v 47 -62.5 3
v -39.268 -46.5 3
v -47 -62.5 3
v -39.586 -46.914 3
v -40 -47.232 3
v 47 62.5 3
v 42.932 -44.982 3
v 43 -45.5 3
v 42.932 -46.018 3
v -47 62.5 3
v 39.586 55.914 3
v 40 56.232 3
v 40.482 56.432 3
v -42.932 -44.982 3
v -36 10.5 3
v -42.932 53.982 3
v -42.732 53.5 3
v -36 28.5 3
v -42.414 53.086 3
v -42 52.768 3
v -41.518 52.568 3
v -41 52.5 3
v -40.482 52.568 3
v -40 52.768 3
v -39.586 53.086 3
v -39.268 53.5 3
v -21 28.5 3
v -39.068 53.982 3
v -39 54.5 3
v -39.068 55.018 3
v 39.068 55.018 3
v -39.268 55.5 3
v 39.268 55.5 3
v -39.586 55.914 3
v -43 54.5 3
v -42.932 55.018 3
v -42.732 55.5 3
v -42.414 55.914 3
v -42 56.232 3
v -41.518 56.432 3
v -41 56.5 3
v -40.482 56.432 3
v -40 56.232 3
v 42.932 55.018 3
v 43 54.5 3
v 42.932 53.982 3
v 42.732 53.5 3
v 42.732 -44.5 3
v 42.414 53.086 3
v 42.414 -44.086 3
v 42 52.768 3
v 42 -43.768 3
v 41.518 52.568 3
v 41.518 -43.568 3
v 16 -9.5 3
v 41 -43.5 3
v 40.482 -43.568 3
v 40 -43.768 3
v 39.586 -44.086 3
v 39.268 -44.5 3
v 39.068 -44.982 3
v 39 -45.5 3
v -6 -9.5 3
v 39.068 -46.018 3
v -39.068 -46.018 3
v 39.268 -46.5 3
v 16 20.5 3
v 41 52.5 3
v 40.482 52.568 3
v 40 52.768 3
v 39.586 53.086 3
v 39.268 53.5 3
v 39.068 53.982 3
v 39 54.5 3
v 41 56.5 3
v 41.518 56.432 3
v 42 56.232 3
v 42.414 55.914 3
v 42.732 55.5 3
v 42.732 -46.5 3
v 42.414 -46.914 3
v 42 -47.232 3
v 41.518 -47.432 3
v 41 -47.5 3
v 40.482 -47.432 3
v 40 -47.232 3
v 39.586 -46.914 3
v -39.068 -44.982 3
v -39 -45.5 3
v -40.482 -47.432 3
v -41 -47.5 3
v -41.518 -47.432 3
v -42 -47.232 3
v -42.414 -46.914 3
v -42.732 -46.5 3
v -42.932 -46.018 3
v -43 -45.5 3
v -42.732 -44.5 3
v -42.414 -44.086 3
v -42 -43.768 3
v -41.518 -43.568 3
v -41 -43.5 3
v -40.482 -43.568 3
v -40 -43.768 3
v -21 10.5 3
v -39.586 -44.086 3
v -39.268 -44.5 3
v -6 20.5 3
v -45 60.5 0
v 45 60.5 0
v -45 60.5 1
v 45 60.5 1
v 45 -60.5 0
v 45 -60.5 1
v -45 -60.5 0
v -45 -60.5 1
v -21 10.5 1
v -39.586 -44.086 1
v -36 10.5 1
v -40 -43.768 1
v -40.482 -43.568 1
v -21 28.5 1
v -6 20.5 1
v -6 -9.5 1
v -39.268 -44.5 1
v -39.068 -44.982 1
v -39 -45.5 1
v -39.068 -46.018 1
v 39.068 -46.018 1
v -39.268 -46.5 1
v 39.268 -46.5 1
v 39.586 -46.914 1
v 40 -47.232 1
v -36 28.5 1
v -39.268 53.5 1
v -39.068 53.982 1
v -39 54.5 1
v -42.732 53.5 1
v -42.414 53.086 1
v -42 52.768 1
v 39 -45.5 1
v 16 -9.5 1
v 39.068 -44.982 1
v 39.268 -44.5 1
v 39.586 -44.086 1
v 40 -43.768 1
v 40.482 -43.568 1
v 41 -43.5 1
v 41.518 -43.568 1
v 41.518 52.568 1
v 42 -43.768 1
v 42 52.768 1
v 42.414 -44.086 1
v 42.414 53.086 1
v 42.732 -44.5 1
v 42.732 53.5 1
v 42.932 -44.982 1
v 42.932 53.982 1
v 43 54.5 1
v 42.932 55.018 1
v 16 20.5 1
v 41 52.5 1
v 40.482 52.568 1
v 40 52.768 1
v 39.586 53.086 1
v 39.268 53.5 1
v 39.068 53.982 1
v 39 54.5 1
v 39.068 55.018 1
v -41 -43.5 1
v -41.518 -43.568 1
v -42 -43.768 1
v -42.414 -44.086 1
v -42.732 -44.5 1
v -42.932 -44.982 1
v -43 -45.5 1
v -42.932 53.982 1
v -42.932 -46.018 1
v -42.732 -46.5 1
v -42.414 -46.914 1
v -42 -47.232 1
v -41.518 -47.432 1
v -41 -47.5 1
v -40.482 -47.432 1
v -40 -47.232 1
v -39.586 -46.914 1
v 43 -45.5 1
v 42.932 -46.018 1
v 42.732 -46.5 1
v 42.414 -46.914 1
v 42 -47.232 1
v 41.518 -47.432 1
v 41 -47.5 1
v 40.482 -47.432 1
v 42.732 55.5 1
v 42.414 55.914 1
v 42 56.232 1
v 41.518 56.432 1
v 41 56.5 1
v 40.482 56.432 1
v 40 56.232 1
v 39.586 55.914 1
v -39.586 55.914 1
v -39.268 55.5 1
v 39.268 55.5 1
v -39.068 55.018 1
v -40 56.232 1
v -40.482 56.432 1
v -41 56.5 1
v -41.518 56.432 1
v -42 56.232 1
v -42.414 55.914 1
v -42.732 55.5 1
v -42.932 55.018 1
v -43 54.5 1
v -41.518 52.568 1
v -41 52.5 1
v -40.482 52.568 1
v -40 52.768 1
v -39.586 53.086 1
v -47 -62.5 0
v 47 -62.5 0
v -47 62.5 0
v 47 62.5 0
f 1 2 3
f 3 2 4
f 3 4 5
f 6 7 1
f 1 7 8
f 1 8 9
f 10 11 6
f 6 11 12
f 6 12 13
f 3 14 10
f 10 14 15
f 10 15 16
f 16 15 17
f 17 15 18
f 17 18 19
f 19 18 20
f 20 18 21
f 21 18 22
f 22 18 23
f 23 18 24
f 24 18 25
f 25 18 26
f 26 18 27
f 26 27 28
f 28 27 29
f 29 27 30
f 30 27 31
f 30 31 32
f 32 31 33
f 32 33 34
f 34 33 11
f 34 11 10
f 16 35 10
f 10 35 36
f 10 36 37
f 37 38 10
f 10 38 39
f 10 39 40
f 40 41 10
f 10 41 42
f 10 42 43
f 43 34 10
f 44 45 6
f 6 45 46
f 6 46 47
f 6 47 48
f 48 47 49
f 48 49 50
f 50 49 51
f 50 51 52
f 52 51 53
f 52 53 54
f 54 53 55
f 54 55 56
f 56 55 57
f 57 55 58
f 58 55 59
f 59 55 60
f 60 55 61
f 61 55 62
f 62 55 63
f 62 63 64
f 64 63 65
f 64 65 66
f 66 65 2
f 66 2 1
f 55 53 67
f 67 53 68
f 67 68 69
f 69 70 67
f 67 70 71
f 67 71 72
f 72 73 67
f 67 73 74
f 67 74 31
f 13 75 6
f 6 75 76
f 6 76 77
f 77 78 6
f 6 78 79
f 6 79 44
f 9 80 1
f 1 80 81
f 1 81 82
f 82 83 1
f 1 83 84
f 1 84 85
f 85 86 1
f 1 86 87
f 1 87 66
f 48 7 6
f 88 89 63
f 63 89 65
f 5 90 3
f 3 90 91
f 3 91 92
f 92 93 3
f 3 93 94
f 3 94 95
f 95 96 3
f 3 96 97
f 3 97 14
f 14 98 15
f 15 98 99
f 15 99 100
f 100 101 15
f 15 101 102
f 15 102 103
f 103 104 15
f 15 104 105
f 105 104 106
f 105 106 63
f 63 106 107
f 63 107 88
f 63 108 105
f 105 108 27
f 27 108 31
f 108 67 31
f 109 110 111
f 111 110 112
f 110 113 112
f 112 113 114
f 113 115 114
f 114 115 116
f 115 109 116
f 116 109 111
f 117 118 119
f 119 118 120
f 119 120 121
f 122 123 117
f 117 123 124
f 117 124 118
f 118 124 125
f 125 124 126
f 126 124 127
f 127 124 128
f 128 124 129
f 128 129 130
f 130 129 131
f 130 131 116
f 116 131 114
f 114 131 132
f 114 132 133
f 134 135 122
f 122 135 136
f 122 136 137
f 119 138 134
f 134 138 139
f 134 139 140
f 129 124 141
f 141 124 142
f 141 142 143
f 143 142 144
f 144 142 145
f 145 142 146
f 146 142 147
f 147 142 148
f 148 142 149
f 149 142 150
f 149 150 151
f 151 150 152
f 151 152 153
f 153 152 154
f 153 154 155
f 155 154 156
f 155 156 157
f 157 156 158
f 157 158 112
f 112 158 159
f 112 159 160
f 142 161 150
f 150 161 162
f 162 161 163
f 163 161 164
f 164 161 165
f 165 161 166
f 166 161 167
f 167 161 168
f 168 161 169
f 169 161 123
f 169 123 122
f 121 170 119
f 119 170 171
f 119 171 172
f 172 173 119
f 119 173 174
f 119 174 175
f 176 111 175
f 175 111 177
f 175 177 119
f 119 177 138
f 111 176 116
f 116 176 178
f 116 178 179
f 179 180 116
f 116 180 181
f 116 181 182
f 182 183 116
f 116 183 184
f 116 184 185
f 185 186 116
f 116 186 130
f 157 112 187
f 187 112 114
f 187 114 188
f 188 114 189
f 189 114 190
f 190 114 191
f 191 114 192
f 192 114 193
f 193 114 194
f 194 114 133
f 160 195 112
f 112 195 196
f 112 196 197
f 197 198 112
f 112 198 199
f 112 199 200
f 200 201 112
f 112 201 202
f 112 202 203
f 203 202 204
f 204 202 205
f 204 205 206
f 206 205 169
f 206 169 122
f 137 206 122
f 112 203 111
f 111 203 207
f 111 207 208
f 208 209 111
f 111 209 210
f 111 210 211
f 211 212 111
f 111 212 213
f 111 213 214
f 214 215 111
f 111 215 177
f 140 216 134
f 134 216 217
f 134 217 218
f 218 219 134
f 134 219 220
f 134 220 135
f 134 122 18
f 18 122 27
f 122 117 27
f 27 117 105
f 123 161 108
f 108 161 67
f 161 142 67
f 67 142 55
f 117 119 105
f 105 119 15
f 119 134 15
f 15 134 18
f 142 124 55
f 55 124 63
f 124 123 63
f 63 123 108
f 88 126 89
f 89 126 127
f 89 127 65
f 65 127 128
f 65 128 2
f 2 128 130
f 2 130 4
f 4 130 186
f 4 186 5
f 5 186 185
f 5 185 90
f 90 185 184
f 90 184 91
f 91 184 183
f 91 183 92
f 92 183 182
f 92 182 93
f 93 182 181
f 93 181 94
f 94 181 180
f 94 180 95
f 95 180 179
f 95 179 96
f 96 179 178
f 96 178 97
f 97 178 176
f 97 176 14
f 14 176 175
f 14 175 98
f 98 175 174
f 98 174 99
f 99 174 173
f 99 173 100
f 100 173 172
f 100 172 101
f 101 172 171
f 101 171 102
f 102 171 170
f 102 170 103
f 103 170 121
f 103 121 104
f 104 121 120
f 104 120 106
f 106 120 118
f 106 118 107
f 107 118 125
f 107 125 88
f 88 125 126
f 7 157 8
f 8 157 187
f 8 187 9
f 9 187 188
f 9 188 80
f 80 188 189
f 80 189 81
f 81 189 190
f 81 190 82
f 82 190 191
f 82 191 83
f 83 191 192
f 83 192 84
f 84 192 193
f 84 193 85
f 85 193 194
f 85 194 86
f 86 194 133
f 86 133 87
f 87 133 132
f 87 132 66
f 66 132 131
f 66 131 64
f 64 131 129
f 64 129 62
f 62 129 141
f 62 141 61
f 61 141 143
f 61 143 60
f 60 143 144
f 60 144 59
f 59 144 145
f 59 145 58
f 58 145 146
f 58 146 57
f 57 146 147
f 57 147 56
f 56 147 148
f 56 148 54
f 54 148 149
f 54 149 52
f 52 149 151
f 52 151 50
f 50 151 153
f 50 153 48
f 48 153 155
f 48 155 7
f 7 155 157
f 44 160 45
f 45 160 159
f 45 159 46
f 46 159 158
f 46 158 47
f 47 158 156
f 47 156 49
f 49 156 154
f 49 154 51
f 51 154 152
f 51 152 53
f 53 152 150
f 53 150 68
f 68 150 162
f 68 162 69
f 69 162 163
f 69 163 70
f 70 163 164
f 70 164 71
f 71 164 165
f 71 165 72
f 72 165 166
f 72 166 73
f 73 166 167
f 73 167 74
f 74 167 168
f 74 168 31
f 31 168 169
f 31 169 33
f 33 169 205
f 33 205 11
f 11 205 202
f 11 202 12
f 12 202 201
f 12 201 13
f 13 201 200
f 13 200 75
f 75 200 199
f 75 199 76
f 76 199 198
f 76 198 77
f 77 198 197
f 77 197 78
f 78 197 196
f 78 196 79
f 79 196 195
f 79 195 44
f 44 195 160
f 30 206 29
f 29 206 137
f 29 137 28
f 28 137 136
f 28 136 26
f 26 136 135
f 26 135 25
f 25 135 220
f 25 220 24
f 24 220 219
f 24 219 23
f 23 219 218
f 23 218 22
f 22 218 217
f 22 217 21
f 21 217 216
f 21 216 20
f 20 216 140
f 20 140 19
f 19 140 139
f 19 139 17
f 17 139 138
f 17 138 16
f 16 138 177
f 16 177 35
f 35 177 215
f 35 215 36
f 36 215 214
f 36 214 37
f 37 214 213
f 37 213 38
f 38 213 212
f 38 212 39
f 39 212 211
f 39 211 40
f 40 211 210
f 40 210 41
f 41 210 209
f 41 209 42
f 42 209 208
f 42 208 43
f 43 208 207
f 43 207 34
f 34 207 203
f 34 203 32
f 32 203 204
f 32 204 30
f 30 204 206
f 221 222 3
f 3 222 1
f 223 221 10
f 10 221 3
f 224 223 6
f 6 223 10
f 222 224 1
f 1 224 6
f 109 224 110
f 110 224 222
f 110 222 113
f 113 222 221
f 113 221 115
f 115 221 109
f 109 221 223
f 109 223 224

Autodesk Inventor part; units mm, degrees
ref_plane "YZ Plane" through (0, 0, 0) normal (1, 0, 0) x (0, 1, 0)
ref_plane "XZ Plane" through (0, 0, 0) normal (0, 1, 0) x (-1, 0, 0)
ref_plane "Piano di lavoro1" through (0, 0, 0) normal (0, 0, 1) x (1, 0, 0)
sketch "Schizzo1" plane through (0, 0, 0) normal (0, 0, 1) x (1, 0, 0)
  line L0 (16, 20.5) -> (-6, 20.5) projected
  line L1 (16, -9.5) -> (16, 20.5) projected
  line L2 (-6, -9.5) -> (16, -9.5) projected
  line L3 (-6, 20.5) -> (-6, -9.5) projected
  line L4 (-21, 10.5) -> (-21, 28.5) projected
  line L5 (-21, 28.5) -> (-36, 28.5) projected
  line L6 (-36, 10.5) -> (-21, 10.5) projected
  line L7 (-36, 28.5) -> (-36, 10.5) projected
  circle A0 centre (-41, 54.5) radius 2 projected
  circle A1 centre (41, 54.5) radius 2 projected
  circle A2 centre (41, -45.5) radius 2 projected
  circle A3 centre (-41, -45.5) radius 2 projected
  line L8 (47, -62.5) -> (-47, -62.5) projected
  line L9 (47, 62.5) -> (47, -62.5) projected
  line L10 (-47, 62.5) -> (47, 62.5) projected
  line L11 (-47, -62.5) -> (-47, 62.5) projected
  point P0 (0, 0)
extrude "Estrusione1" add sketch "Schizzo1" along normal blind 2
sketch "Schizzo2" plane through (0, 0, 0) normal (0, 0, -1) x (-1, 0, 0)
  line L0 (-47, -62.5) -> (-47, 62.5) projected
  line L1 (47, -62.5) -> (-47, -62.5) projected
  line L2 (47, 62.5) -> (47, -62.5) projected
  line L3 (-47, 62.5) -> (47, 62.5) projected
  circle A0 centre (41, 54.5) radius 2 projected
  circle A1 centre (-41, 54.5) radius 2 projected
  circle A2 centre (-41, -45.5) radius 2 projected
  circle A3 centre (41, -45.5) radius 2 projected
  line L4 (6, -9.5) -> (6, 20.5) projected
  line L5 (-16, -9.5) -> (6, -9.5) projected
  line L6 (-16, 20.5) -> (-16, -9.5) projected
  line L7 (6, 20.5) -> (-16, 20.5) projected
  line L8 (36, 10.5) -> (36, 28.5) projected
  line L9 (21, 10.5) -> (36, 10.5) projected
  line L10 (21, 28.5) -> (21, 10.5) projected
  line L11 (36, 28.5) -> (21, 28.5) projected
  point P0 (0, 0)
sketch "Schizzo3" plane through (0, 0, 0) normal (0, 0, -1) x (-1, 0, 0)
  line L0 (45, 60.5) -> (-45, 60.5) projected
  line L1 (-45, 60.5) -> (-45, -60.5) projected
  line L2 (45, -60.5) -> (45, 60.5) projected
  line L3 (-45, -60.5) -> (45, -60.5) projected
  point P0 (0, 0)
extrude "Estrusione2" cut sketch "Schizzo3" against normal blind 1
sketch "Schizzo4" plane through (-47, -62.5, 0) normal (0, -1, 0) x (1, 0, 0)
  line L0 (0, 0) -> (94, 0) projected
  line L1 (94, 0) -> (94, 2) projected
  line L2 (0, 2) -> (94, 2) projected
  line L3 (0, 0) -> (0, 2) projected
  line L4 (0, 0) -> (94, 0) projected
  line L5 (94, 0) -> (94, 2) projected
  line L6 (0, 2) -> (94, 2) projected
  line L7 (0, 0) -> (0, 2) projected
  point P0 (47, 0)
sketch "Schizzo5" plane through (0, 0, 2) normal (0, 0, 1) x (1, 0, 0)
  line L0 (47, -62.5) -> (47, 62.5) projected
  line L1 (47, 62.5) -> (-47, 62.5) projected
  line L2 (-47, 62.5) -> (-47, -62.5) projected
  line L3 (-47, -62.5) -> (47, -62.5) projected
  circle A0 centre (-41, 54.5) radius 2 projected
  circle A1 centre (41, 54.5) radius 2 projected
  circle A2 centre (41, -45.5) radius 2 projected
  circle A3 centre (-41, -45.5) radius 2 projected
  line L4 (-6, -9.5) -> (-6, 20.5) projected
  line L5 (-6, 20.5) -> (16, 20.5) projected
  line L6 (16, 20.5) -> (16, -9.5) projected
  line L7 (16, -9.5) -> (-6, -9.5) projected
  line L8 (-36, 10.5) -> (-36, 28.5) projected
  line L9 (-36, 28.5) -> (-21, 28.5) projected
  line L10 (-21, 28.5) -> (-21, 10.5) projected
  line L11 (-21, 10.5) -> (-36, 10.5) projected
  point P0 (0, 0)
extrude "Estrusione3" add sketch "Schizzo5" along normal blind 1
properties part number "_Stampa 3D"
